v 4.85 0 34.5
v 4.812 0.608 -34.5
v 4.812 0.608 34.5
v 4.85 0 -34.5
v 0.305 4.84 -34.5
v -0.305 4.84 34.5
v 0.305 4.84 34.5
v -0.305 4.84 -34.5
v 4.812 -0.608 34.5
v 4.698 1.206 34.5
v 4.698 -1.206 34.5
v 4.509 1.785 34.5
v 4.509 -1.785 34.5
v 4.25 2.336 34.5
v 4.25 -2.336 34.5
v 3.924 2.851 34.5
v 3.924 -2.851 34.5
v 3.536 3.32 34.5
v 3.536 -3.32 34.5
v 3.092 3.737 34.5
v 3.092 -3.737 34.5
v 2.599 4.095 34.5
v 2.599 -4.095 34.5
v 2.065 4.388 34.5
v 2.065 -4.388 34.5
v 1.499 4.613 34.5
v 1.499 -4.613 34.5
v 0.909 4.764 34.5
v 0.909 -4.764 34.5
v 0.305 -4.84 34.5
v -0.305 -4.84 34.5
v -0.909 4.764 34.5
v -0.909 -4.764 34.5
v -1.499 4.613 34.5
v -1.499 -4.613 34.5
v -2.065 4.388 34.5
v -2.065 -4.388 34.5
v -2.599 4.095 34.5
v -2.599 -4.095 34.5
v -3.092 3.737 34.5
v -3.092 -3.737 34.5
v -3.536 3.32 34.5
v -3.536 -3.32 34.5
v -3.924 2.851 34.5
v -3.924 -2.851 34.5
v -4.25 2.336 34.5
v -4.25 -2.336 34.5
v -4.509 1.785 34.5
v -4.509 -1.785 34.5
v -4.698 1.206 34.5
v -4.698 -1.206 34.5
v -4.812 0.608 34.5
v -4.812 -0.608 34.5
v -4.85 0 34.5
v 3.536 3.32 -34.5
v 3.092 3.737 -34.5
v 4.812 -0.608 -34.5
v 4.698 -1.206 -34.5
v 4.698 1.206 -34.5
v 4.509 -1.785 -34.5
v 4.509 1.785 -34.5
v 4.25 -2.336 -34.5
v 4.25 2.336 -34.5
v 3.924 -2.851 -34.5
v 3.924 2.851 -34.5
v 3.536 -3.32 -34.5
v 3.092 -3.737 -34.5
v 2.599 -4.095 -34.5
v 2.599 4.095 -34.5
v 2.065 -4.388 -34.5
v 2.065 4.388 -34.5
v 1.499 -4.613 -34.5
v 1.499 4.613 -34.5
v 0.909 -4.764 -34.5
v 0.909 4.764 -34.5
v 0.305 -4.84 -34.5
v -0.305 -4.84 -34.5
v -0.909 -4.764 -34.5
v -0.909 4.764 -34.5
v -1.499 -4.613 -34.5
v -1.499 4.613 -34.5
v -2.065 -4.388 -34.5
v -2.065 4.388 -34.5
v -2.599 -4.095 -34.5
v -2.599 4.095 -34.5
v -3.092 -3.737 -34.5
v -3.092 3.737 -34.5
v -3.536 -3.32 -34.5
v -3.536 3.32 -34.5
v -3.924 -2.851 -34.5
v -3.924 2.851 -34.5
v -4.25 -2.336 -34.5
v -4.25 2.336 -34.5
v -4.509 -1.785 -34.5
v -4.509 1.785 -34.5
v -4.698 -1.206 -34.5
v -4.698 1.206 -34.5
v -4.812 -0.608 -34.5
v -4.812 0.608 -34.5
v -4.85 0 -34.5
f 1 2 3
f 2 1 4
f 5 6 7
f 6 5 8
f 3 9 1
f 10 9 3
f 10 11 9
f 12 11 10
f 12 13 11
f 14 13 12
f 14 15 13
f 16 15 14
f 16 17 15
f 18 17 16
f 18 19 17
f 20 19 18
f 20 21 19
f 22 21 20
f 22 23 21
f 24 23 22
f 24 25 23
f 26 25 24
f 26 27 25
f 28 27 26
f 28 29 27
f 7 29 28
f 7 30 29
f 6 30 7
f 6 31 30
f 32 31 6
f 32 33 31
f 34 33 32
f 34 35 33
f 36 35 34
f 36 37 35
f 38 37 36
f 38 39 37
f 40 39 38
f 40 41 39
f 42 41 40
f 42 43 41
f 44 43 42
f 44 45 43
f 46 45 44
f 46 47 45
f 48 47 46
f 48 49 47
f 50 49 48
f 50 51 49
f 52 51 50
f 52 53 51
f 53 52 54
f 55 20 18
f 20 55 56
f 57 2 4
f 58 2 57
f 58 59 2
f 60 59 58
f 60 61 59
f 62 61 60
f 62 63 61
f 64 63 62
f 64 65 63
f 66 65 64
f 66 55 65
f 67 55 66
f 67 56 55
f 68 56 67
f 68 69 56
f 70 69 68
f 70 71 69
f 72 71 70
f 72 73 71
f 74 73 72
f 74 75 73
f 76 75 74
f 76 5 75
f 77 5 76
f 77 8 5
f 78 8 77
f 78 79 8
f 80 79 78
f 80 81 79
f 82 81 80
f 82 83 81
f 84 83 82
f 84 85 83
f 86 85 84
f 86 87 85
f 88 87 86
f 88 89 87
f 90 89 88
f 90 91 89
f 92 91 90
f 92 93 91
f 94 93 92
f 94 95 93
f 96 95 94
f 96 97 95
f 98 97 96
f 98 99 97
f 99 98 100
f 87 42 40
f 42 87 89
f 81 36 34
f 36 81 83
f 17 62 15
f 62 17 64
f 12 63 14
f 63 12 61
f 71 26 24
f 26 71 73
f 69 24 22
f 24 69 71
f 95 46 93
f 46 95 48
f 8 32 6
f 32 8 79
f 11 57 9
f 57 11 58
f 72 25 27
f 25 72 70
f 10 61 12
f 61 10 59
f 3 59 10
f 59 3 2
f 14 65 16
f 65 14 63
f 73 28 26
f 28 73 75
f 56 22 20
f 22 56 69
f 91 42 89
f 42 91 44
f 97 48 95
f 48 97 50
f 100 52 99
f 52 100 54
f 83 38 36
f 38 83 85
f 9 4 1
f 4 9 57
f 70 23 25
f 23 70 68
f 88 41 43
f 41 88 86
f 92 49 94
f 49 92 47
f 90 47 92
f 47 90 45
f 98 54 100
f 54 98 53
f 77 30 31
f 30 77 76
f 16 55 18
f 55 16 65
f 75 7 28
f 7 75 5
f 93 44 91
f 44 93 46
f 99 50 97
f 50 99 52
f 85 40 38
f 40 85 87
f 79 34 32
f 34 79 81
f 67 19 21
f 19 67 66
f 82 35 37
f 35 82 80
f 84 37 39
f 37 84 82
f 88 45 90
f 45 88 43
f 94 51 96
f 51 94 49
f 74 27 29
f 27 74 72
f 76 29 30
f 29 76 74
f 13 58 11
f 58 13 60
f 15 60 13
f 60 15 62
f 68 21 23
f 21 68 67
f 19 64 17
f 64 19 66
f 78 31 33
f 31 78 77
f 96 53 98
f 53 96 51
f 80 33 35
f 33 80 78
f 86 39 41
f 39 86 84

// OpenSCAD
$fn = 50;


difference() {
	union() {
		translate(v = [0, 0, -34.5000000000]) {
			cylinder(h = 69, r = 4.8500000000);
		}
	}
	union() {
		translate(v = [0, 0, -100.0000000000]) {
			cylinder(h = 200, r = 0);
		}
	}
}
